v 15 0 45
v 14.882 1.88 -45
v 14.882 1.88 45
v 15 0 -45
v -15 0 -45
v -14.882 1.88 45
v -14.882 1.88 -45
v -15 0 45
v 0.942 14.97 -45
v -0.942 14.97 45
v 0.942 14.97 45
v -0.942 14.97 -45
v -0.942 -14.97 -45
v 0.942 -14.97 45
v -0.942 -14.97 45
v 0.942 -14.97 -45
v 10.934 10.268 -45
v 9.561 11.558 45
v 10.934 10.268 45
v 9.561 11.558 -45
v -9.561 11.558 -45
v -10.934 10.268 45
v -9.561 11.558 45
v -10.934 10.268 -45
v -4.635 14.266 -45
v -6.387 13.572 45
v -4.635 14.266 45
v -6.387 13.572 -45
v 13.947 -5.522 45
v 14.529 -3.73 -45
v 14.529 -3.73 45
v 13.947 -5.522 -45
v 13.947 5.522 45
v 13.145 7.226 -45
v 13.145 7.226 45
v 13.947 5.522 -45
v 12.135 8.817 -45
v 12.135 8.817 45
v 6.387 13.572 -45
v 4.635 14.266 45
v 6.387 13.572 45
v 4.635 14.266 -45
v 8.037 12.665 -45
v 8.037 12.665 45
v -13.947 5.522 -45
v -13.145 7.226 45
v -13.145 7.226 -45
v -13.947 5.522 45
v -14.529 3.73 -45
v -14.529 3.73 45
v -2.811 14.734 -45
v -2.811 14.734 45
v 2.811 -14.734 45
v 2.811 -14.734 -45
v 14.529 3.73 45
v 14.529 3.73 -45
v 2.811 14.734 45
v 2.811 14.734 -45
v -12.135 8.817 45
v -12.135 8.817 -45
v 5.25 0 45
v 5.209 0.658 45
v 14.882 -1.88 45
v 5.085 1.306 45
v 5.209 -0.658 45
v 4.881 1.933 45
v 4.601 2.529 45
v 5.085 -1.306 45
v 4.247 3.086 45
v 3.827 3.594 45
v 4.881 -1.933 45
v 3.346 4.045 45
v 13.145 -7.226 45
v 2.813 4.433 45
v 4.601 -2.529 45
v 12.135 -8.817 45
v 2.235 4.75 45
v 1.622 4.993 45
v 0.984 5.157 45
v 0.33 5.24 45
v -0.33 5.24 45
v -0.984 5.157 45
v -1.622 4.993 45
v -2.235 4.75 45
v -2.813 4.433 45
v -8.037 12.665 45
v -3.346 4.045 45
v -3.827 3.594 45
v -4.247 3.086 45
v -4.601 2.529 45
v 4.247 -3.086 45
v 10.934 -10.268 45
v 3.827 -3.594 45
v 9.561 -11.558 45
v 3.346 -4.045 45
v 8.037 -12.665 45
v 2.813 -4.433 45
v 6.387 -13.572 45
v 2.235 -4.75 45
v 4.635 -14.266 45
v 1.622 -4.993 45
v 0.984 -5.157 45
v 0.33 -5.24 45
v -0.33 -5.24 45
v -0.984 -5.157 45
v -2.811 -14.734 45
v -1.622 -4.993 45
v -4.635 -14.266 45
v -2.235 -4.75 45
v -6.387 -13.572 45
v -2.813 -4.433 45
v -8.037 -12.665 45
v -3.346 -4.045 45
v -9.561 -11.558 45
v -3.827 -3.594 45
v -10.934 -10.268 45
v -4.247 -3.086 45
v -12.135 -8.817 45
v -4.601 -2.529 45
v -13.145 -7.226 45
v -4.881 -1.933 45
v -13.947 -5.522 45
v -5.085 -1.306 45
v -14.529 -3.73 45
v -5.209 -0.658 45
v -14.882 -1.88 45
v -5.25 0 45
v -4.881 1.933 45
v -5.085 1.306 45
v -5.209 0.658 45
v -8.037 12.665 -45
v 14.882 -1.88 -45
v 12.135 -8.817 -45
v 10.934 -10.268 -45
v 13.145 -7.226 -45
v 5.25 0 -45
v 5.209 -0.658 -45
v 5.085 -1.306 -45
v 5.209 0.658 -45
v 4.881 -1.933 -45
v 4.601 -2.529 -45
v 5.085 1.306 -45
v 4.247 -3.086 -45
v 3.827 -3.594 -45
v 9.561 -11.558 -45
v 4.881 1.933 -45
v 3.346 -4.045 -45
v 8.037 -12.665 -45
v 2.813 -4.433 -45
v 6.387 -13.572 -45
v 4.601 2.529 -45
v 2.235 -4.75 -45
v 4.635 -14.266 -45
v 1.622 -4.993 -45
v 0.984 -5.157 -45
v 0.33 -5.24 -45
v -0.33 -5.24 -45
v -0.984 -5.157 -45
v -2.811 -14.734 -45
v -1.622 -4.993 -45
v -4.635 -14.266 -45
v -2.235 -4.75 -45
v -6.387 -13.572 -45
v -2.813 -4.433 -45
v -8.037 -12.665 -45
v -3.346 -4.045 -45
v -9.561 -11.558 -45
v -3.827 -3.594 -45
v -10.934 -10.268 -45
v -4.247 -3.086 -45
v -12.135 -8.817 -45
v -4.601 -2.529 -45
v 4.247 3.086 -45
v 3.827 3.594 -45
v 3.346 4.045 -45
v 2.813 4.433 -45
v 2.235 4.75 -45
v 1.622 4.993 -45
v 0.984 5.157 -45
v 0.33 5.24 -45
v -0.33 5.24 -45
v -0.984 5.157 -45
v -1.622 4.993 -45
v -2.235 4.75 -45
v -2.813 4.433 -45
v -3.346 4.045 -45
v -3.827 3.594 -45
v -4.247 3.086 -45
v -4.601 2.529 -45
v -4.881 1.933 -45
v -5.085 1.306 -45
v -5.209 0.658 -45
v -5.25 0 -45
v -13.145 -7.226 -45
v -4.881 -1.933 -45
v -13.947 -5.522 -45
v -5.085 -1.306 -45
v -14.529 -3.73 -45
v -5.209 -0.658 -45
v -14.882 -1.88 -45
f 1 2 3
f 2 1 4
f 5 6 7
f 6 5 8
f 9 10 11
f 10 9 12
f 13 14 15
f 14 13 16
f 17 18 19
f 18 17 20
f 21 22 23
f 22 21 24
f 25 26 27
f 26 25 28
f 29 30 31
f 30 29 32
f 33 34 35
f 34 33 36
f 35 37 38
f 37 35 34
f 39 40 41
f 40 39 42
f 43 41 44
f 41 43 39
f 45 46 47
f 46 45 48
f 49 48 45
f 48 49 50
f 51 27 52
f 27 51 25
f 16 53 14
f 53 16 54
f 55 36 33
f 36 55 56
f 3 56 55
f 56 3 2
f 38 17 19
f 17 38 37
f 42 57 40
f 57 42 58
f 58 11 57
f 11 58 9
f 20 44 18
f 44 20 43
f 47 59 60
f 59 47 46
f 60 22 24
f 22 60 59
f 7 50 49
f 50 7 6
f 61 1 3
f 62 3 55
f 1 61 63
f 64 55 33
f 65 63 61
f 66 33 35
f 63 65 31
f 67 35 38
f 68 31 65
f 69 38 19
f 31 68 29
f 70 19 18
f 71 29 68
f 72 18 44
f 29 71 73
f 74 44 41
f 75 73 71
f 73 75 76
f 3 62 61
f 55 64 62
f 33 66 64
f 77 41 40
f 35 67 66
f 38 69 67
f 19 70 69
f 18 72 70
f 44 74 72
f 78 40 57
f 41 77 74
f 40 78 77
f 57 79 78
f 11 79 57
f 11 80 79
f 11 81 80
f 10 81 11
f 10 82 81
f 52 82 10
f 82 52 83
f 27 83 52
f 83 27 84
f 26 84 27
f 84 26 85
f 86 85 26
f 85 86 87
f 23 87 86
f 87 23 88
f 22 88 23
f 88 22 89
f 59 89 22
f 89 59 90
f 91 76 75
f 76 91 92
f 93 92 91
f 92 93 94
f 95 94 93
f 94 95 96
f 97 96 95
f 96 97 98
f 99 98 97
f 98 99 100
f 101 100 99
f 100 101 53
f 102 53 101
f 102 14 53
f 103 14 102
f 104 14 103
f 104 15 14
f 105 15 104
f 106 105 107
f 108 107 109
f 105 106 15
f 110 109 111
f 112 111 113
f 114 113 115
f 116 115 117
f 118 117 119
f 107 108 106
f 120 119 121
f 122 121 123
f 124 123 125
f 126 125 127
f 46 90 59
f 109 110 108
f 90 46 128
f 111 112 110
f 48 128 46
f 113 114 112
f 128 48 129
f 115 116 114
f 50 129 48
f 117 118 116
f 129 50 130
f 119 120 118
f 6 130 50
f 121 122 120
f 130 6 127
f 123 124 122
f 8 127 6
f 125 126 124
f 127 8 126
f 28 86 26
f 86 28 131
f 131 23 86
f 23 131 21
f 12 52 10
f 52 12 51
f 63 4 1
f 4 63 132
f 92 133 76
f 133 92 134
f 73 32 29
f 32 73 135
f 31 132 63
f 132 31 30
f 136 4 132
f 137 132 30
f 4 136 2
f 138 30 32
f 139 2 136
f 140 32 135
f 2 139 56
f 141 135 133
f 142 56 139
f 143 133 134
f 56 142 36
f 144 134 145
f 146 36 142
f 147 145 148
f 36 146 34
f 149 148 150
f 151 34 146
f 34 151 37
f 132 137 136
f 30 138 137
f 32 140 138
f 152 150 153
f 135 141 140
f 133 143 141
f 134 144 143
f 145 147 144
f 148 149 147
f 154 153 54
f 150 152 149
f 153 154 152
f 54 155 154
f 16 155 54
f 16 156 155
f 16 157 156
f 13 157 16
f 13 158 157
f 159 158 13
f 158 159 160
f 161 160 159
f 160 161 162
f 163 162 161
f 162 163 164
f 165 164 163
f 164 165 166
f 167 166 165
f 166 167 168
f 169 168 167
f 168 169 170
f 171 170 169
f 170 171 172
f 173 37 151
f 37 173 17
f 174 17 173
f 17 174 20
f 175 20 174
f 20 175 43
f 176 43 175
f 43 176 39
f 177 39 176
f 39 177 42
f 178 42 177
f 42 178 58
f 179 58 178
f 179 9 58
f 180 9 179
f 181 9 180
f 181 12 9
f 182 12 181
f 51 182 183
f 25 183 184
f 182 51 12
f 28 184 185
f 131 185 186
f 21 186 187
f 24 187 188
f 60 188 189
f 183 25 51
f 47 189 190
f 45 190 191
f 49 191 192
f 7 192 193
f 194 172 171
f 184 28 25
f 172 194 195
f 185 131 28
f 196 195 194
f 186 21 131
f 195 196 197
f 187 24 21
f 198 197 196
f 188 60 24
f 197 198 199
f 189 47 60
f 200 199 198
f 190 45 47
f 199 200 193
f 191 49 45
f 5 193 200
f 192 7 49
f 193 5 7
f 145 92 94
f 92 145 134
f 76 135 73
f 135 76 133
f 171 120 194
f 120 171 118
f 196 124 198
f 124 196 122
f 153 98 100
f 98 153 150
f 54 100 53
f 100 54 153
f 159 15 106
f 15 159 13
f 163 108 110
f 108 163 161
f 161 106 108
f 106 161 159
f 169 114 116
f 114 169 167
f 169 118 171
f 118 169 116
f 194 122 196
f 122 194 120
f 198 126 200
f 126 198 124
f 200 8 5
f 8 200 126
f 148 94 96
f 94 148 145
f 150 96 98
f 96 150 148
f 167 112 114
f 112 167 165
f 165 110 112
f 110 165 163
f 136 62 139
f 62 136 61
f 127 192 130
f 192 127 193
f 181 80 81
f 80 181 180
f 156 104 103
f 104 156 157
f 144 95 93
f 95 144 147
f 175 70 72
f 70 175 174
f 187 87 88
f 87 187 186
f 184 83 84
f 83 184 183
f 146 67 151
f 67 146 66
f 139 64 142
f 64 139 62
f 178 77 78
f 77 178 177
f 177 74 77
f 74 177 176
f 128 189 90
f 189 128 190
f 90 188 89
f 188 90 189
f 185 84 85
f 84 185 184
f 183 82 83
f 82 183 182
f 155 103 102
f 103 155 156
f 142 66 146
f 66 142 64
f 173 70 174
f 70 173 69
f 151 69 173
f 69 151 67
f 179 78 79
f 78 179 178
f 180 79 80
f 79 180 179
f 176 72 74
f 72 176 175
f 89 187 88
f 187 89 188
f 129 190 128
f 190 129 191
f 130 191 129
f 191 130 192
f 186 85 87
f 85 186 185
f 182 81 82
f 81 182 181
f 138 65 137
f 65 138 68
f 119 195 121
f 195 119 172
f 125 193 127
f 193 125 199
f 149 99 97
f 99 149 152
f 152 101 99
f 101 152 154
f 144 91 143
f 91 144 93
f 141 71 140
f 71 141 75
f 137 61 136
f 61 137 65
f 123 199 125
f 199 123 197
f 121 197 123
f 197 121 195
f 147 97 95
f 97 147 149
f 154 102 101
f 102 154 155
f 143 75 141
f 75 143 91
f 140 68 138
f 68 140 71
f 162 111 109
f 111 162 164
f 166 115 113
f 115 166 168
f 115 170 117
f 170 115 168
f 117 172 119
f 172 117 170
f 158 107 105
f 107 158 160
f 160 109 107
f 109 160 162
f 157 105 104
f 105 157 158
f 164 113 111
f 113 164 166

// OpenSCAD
$fn = 50;


difference() {
	union() {
		translate(v = [0, 0, -45.0000000000]) {
			cylinder(h = 90, r = 15.0000000000);
		}
	}
	union() {
		translate(v = [0, 0, -100.0000000000]) {
			cylinder(h = 200, r = 5.2500000000);
		}
	}
}
